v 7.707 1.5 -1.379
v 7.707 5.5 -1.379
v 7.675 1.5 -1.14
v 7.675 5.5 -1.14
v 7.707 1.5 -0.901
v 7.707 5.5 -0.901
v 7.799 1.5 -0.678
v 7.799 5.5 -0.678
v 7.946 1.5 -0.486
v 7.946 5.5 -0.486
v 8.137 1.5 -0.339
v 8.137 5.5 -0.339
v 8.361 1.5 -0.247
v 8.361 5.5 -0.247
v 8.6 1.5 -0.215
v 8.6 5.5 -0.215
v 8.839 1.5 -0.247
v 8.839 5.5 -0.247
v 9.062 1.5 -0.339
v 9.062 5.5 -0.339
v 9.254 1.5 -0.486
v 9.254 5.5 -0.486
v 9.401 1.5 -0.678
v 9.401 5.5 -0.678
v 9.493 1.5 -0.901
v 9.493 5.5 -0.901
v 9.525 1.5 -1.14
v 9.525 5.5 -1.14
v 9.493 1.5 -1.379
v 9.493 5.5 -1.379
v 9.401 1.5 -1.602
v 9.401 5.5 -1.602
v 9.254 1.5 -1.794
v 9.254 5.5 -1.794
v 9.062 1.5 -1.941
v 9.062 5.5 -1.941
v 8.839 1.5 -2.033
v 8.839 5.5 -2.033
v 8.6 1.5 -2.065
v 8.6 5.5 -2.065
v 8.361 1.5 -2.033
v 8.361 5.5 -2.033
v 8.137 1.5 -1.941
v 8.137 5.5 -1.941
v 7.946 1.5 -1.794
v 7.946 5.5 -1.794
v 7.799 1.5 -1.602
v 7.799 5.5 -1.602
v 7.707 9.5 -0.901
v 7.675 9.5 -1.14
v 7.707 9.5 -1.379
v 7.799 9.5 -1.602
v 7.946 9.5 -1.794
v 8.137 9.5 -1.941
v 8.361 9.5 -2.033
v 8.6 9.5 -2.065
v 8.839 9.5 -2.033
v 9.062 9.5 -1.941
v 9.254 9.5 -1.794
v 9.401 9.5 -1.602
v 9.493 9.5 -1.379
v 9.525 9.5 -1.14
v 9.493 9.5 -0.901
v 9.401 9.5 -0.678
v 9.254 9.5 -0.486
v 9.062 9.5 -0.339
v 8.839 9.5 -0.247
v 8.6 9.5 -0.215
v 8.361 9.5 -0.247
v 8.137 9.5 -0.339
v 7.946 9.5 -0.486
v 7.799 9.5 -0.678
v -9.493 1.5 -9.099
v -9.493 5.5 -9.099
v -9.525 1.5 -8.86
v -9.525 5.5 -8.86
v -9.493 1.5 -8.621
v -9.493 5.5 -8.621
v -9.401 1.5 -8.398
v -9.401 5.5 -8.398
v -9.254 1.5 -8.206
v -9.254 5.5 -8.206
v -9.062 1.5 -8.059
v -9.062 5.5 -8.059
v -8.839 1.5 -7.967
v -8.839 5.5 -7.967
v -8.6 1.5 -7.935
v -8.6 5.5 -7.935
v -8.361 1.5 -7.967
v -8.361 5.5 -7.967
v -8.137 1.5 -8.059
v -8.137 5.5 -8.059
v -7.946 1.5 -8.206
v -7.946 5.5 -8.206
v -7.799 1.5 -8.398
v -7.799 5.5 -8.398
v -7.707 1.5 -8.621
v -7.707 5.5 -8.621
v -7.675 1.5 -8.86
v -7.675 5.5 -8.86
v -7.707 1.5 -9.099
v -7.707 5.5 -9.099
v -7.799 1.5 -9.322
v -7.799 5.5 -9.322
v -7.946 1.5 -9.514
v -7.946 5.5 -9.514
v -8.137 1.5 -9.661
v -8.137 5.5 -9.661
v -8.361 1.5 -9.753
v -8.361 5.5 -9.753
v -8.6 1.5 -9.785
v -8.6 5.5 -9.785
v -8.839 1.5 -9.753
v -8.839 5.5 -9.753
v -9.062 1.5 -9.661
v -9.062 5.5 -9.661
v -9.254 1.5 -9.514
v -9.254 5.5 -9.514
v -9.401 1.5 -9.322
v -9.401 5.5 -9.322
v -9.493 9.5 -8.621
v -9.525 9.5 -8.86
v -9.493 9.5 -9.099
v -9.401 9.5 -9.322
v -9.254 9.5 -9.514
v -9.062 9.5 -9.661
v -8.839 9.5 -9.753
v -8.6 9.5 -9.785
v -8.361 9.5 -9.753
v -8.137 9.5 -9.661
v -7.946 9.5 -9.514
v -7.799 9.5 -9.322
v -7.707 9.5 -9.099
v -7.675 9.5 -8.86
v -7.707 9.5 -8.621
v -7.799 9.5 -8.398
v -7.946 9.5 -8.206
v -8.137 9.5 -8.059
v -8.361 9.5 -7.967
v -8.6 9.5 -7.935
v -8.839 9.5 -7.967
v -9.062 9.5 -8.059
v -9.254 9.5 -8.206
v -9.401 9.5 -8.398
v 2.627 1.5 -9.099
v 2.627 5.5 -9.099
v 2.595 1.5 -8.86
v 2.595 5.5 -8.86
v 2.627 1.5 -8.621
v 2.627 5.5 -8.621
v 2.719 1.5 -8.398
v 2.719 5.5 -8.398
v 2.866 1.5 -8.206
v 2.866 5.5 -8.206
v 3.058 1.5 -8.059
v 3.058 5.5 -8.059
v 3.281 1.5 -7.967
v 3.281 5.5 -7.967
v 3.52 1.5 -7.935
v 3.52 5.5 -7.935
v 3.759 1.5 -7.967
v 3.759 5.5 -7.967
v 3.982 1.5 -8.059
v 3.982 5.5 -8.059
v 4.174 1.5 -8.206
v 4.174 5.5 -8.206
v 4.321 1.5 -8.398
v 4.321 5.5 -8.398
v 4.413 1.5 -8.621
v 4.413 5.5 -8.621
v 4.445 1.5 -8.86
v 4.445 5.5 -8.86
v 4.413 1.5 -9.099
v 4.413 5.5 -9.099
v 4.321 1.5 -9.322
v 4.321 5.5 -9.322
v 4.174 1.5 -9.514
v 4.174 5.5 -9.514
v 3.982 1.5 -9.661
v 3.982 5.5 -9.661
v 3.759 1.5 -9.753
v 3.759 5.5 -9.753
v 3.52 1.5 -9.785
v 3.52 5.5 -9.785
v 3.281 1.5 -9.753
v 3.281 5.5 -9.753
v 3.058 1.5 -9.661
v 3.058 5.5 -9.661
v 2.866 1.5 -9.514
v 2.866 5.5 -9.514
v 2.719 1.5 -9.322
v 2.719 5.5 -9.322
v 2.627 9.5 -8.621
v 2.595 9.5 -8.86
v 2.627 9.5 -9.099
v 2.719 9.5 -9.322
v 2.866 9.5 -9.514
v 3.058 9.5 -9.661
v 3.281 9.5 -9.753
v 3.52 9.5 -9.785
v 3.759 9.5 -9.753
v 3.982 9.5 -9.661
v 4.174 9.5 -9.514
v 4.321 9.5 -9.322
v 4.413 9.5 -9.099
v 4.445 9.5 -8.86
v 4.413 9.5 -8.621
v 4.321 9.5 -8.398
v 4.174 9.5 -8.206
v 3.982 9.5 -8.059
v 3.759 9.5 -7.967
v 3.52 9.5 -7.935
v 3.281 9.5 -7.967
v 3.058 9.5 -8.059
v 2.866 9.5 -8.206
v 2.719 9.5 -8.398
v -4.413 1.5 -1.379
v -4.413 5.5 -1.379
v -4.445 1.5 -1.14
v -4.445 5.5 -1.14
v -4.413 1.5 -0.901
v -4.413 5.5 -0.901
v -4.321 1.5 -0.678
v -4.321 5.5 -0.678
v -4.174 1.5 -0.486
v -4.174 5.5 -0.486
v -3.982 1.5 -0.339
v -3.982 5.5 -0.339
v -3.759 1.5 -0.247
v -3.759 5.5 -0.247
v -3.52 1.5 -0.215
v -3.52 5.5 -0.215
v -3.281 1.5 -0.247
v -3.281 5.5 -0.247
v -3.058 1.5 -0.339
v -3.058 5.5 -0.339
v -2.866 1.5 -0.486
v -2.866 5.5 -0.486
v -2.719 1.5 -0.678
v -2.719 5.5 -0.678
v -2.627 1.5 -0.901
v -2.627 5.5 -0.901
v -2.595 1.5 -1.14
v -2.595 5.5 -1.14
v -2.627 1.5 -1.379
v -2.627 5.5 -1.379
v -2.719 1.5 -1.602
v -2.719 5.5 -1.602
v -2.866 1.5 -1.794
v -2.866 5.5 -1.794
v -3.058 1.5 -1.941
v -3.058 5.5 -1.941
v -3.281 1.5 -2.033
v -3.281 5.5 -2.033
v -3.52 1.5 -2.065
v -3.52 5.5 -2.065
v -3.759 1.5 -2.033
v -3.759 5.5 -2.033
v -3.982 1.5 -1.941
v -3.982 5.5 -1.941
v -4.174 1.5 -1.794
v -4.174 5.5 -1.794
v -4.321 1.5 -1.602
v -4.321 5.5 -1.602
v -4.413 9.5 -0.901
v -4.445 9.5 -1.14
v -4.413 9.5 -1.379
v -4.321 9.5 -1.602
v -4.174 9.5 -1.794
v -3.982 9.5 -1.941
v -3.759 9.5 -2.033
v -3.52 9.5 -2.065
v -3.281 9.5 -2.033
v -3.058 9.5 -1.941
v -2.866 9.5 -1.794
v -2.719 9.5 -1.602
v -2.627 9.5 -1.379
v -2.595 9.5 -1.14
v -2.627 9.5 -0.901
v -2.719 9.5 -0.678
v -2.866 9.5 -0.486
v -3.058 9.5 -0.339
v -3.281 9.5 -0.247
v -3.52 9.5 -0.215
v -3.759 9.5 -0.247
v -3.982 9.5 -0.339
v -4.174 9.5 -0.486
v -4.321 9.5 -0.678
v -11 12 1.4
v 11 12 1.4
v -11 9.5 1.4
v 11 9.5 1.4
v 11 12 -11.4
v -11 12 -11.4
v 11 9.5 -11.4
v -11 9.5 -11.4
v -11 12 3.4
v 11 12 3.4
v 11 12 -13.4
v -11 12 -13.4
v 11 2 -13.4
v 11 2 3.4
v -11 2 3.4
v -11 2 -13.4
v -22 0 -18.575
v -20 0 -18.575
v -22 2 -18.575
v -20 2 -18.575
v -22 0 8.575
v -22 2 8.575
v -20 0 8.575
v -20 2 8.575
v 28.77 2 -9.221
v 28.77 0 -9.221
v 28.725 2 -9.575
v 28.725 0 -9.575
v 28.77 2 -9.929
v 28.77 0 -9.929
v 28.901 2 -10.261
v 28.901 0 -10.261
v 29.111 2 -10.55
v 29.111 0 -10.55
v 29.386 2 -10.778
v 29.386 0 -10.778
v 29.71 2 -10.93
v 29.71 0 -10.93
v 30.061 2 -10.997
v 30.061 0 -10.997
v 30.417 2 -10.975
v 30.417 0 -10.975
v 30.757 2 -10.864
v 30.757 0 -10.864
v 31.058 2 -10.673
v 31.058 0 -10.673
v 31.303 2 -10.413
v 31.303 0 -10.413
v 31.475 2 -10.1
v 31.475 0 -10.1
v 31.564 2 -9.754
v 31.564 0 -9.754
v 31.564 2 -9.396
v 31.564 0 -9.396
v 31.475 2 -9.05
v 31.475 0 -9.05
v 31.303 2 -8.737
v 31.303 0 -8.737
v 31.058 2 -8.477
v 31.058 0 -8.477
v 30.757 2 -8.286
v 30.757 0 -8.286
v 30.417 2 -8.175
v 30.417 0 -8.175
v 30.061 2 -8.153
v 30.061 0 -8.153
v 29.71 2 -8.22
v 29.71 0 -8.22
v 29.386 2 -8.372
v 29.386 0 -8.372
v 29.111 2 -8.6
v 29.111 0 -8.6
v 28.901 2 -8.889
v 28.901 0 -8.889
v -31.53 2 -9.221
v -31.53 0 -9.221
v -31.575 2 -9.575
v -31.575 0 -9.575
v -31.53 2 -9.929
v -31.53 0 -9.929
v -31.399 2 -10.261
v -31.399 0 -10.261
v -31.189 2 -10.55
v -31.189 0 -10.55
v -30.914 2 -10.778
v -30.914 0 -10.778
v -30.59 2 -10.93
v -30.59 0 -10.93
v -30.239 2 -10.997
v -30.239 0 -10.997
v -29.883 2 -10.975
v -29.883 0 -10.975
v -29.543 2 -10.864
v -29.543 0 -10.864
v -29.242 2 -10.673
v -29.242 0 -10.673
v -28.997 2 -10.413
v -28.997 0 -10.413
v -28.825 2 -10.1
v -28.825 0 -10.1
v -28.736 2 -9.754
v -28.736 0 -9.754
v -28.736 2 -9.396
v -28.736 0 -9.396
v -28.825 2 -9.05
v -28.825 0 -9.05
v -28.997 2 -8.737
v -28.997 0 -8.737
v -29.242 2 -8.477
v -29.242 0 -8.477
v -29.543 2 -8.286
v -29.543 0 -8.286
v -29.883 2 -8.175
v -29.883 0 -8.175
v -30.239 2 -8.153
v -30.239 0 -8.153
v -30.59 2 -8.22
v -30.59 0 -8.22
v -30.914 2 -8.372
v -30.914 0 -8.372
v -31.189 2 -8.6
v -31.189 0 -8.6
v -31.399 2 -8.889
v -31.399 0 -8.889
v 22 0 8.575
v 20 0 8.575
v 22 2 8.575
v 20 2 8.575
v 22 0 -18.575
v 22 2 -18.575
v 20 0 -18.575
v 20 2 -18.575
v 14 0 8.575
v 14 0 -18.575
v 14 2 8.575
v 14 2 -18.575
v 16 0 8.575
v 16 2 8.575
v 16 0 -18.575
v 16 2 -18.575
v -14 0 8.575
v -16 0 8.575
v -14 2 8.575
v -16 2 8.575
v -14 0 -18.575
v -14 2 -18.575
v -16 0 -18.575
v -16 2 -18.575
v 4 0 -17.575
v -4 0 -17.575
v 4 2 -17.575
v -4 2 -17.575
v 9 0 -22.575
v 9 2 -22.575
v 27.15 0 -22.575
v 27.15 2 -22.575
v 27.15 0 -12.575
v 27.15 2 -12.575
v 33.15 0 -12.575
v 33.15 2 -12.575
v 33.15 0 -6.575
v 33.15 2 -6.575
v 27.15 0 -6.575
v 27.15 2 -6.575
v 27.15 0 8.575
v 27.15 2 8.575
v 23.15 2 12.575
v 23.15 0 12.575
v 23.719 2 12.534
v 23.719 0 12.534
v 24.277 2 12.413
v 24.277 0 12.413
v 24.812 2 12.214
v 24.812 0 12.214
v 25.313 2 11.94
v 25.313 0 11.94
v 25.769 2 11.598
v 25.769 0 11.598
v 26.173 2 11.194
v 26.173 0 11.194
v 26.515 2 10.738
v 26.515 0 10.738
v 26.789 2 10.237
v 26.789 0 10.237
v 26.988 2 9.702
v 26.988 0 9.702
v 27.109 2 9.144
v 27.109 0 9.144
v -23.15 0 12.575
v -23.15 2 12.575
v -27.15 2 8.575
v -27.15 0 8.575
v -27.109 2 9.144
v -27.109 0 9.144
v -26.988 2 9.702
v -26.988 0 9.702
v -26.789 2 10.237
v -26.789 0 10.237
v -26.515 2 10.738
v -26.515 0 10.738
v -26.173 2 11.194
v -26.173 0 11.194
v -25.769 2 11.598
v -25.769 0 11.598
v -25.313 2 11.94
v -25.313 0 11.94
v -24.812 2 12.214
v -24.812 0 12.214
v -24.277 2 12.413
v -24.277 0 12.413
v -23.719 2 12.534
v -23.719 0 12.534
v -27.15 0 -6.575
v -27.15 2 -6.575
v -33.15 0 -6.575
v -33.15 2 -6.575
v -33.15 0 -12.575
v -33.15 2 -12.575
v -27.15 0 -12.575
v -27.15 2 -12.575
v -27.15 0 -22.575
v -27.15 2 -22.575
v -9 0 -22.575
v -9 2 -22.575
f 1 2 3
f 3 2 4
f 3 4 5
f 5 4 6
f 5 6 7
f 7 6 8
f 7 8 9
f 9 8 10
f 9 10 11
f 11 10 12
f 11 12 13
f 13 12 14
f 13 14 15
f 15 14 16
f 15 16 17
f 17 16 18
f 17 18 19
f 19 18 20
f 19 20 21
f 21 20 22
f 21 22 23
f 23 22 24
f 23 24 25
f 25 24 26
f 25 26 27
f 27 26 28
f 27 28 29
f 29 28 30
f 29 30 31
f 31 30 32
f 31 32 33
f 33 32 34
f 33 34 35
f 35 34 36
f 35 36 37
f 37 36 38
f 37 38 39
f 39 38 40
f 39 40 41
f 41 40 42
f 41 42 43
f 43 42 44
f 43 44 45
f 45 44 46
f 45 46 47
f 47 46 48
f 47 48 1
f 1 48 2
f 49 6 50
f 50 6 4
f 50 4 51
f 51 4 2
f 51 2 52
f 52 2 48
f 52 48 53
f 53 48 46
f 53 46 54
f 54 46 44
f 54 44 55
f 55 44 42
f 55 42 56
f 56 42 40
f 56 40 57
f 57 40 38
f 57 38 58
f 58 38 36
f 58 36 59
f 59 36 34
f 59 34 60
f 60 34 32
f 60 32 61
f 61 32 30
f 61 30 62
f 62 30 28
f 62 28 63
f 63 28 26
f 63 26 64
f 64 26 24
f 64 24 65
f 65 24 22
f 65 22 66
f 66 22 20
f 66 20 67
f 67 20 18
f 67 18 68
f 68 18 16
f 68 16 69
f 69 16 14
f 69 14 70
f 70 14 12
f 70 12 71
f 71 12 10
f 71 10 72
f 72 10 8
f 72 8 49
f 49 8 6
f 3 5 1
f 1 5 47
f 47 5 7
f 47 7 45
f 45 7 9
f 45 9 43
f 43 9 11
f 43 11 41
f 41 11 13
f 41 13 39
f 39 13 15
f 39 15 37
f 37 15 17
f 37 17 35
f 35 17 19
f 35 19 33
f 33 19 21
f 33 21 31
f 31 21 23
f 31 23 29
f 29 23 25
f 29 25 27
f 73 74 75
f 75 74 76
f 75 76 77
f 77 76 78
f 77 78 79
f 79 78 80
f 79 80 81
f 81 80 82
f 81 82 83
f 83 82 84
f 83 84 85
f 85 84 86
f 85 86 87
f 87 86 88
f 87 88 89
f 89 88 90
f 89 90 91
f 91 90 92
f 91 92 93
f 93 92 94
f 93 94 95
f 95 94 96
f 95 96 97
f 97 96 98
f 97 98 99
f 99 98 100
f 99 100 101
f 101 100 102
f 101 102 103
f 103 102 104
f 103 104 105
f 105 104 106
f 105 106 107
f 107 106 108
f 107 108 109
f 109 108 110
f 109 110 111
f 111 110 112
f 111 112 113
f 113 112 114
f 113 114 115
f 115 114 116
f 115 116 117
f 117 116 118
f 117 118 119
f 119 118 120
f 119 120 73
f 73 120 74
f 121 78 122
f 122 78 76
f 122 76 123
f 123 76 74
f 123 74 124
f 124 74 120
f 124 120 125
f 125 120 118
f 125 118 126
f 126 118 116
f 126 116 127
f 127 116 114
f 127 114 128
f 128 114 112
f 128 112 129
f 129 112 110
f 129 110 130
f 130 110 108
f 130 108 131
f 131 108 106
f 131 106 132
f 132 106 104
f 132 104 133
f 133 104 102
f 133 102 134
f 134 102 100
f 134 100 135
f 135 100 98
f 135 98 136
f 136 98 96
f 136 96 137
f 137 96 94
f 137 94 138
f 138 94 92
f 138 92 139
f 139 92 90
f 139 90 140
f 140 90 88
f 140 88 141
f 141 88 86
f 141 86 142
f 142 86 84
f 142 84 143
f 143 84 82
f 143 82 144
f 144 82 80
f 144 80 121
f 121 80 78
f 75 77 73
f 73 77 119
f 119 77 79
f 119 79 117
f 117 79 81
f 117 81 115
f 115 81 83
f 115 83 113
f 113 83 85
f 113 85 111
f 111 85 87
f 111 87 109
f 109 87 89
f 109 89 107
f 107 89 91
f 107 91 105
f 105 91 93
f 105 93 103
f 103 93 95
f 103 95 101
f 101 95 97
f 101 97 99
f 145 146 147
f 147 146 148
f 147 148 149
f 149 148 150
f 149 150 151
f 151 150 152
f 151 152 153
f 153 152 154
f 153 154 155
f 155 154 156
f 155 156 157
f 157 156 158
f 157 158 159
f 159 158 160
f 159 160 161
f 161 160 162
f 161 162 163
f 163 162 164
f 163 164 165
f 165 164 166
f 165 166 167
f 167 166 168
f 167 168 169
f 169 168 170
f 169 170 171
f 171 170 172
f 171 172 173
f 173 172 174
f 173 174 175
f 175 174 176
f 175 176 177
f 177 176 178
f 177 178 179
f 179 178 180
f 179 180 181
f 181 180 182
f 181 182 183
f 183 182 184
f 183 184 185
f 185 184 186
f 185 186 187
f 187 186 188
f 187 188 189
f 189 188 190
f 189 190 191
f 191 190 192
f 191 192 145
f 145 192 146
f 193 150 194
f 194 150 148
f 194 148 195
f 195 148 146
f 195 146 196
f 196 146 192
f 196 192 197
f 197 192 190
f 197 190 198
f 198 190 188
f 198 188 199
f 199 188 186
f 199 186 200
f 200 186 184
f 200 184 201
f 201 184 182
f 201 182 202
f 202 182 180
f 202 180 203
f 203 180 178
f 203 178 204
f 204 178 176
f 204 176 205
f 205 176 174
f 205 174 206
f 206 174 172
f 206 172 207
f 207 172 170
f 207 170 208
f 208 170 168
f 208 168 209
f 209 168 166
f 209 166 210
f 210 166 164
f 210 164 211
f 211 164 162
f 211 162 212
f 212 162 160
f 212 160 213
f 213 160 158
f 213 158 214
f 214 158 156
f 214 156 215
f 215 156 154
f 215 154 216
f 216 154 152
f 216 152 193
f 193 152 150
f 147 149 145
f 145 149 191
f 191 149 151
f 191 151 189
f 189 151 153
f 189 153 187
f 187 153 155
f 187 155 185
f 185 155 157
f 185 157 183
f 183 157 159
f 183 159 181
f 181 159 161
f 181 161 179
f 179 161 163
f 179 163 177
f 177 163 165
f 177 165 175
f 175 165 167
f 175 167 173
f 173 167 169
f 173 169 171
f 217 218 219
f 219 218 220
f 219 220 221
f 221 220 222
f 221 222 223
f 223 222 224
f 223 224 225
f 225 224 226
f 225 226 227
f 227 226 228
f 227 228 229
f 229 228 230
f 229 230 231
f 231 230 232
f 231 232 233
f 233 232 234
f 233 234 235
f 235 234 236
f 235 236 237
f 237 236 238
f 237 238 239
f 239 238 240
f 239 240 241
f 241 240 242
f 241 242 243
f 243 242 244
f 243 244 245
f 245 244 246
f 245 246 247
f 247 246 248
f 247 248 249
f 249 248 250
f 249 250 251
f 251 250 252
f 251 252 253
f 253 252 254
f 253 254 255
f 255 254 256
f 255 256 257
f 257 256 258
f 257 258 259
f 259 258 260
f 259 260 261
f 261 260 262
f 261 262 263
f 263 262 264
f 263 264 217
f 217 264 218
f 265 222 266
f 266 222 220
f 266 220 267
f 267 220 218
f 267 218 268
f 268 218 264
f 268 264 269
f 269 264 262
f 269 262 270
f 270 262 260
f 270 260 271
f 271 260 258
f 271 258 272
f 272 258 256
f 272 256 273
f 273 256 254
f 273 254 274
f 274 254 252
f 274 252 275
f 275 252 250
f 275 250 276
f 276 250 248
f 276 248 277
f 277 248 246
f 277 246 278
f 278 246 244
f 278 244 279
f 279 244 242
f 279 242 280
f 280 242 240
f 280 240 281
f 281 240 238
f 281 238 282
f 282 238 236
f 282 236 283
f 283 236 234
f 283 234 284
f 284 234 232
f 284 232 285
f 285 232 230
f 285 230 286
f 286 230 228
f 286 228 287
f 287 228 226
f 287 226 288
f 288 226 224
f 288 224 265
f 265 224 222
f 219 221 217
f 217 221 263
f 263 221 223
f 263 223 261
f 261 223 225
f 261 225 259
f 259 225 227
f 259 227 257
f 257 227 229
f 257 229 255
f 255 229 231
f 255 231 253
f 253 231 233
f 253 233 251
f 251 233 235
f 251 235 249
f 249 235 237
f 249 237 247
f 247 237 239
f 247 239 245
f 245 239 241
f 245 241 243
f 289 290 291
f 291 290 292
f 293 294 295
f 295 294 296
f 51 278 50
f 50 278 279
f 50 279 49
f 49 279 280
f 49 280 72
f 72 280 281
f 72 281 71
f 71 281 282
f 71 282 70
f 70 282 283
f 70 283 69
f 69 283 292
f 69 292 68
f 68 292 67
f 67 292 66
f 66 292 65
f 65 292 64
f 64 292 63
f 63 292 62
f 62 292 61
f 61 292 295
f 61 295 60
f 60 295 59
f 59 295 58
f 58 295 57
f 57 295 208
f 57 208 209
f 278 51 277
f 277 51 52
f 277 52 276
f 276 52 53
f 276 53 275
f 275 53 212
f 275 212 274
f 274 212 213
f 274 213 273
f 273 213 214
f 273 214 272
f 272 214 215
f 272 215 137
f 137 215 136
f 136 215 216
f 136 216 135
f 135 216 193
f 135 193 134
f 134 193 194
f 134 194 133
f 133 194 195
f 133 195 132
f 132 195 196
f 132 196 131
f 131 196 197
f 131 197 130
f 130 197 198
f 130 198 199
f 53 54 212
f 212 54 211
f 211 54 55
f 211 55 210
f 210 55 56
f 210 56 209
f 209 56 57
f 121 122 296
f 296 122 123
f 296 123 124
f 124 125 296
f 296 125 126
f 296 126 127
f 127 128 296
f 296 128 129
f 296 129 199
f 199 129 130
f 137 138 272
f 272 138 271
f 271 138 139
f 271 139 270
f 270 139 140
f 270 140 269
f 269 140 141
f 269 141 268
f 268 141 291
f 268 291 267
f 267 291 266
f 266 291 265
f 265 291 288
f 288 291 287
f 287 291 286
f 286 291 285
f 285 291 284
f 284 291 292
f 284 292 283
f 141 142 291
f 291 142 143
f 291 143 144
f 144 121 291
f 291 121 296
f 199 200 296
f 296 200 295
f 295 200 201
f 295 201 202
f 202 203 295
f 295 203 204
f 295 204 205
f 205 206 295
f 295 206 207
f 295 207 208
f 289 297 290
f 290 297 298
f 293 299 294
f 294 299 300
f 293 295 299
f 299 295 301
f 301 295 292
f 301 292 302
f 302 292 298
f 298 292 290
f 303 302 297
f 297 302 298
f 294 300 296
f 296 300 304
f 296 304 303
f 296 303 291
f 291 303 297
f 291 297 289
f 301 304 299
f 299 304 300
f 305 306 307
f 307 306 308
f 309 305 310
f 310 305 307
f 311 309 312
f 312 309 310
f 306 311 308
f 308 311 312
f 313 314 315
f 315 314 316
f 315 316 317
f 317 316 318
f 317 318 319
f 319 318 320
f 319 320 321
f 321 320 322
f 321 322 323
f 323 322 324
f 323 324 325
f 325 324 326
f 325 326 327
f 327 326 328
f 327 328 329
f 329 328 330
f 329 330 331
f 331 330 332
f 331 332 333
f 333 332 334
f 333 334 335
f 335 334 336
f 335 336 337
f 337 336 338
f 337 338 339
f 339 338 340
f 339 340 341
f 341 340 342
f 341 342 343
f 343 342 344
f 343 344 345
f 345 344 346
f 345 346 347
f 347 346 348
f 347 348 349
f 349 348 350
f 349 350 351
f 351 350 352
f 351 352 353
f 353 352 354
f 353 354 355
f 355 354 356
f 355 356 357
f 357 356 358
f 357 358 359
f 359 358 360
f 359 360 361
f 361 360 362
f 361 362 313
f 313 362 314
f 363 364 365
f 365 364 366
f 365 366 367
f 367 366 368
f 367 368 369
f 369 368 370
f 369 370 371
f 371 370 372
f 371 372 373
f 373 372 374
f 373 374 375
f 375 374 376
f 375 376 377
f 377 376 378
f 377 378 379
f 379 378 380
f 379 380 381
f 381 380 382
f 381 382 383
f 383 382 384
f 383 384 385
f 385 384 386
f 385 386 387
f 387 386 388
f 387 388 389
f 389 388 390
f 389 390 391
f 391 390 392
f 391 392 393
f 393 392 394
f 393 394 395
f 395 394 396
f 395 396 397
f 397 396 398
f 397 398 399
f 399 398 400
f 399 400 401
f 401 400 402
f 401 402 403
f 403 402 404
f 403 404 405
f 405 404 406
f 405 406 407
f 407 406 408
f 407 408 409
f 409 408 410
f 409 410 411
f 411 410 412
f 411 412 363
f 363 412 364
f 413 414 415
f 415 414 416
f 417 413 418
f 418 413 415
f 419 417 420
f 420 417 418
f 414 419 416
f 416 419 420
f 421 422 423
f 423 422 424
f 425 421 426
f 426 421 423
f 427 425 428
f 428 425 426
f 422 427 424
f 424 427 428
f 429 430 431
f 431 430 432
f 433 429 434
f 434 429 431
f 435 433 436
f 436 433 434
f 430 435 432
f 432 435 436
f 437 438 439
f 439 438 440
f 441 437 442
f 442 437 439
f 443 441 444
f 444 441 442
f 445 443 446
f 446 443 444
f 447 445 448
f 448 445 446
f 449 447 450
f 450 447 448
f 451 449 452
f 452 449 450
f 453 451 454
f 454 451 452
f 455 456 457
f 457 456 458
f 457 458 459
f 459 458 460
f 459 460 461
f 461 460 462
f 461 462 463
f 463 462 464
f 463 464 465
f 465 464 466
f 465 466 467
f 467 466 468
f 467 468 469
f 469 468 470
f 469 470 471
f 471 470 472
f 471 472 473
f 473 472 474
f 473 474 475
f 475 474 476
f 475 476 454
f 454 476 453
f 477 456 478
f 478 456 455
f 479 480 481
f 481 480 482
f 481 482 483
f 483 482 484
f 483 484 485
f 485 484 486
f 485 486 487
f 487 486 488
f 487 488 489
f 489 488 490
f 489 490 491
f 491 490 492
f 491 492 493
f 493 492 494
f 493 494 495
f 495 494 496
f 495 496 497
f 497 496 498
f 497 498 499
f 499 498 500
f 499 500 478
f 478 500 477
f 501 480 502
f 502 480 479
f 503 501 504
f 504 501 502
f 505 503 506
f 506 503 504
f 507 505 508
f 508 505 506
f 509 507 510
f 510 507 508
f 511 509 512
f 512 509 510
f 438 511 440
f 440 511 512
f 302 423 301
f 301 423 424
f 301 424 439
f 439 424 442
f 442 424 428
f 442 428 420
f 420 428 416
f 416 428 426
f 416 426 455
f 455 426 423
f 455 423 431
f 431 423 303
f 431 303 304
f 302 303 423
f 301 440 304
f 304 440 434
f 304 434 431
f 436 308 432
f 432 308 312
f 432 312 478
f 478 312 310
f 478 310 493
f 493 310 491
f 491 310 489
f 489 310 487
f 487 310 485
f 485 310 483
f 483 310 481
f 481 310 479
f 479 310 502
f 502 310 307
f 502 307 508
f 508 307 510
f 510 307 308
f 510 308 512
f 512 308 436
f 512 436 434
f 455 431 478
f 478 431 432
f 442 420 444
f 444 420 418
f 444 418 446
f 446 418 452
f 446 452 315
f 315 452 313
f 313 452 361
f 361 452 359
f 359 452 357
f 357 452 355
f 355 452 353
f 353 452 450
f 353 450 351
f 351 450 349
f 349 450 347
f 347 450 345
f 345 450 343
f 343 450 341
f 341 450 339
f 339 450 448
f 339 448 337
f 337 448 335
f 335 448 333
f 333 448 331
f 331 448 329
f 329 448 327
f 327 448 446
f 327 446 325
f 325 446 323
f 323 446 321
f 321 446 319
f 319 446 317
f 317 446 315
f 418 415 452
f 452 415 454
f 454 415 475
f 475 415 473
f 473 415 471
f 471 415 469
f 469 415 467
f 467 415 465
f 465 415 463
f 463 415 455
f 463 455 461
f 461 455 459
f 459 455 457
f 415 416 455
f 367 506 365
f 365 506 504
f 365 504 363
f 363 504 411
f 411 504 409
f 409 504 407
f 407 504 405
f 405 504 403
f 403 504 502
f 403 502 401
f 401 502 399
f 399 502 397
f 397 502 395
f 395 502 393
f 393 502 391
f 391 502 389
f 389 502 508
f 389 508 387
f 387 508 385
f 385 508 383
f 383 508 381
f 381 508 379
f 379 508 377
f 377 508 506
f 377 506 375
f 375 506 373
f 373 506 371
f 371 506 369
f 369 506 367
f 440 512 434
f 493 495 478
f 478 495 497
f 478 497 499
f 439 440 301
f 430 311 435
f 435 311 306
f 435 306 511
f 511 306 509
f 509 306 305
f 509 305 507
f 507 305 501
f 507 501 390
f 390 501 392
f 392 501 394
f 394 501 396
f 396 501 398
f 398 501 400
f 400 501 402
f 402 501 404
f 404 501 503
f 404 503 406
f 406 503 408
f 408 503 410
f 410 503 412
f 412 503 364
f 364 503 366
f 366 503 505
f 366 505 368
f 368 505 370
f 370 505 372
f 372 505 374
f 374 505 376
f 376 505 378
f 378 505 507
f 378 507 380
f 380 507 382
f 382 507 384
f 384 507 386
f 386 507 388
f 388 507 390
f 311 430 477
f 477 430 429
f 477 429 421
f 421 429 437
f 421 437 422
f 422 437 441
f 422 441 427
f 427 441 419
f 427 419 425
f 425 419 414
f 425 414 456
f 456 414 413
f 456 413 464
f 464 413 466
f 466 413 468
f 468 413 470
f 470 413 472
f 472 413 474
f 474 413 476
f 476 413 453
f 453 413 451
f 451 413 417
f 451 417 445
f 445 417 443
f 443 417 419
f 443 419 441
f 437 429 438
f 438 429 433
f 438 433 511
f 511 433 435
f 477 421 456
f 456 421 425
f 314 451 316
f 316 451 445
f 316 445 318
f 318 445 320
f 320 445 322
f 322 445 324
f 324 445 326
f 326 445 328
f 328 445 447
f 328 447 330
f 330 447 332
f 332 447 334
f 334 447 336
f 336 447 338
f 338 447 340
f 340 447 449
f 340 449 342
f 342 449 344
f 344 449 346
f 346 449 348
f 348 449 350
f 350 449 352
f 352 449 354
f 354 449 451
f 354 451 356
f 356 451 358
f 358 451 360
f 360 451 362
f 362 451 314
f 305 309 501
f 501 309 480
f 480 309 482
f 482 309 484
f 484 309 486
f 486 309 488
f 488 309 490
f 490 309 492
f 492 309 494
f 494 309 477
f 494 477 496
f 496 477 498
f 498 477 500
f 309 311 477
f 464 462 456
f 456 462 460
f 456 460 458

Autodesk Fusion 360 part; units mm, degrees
sketch "Sketch1" plane through (0, 0, 0) normal (0, 1, 0) x (1, 0, 0)
  line L0 (0, 12.575) -> (27.15, 12.575) construction
  line L1 (27.15, 12.575) -> (27.15, -8.575)
  line L2 (23.15, -12.575) -> (0, -12.575)
  line L3 (27.15, 12.575) -> (33.15, 12.575)
  line L4 (33.15, 12.575) -> (33.15, 6.575)
  line L5 (33.15, 6.575) -> (27.15, 6.575)
  line L6 (27.15, 6.575) -> (27.15, 12.575)
  line L7 (0, -12.575) -> (0, 12.575) construction
  circle A0 centre (30.15, 9.575) radius 1.425
  line L8 (27.15, 6.575) -> (33.15, 12.575) construction
  arc A1 (23.15, -12.575) -> (27.15, -8.575) centre (23.15, -8.575) ccw
  line L9 (-27.15, 12.575) -> (-27.15, -8.575)
  line L10 (-33.15, 6.575) -> (-27.15, 6.575)
  circle A2 centre (-30.15, 9.575) radius 1.425
  line L11 (-27.15, 12.575) -> (-33.15, 12.575)
  line L12 (-33.15, 12.575) -> (-33.15, 6.575)
  line L13 (-23.15, -12.575) -> (0, -12.575)
  arc A3 (-27.15, -8.575) -> (-23.15, -12.575) centre (-23.15, -8.575) ccw
  line L14 (-27.15, 0) -> (27.15, 0) construction
  line L15 (-27.15, 12.575) -> (-27.15, 22.575)
  line L16 (-27.15, 22.575) -> (27.15, 22.575)
  line L17 (27.15, 22.575) -> (27.15, 12.575)
  line L18 (22, 18.575) -> (20, 18.575)
  line L19 (22, -8.575) -> (22, 18.575)
  line L20 (20, -8.575) -> (22, -8.575)
  line L21 (20, 18.575) -> (20, -8.575)
  line L22 (16, -8.575) -> (16, 18.575)
  line L23 (14, 18.575) -> (14, -8.575)
  line L24 (14, -8.575) -> (16, -8.575)
  line L25 (16, 18.575) -> (14, 18.575)
  line L26 (-4, 17.575) -> (4, 17.575)
  line L27 (-4, 17.575) -> (-9, 22.575)
  line L28 (4, 17.575) -> (9, 22.575)
  line L29 (11, 13.4) -> (11, -3.4)
  line L30 (-11, -3.4) -> (-11, 13.4)
  line L31 (-11, 11.4) -> (11, 11.4)
  line L32 (-11, -1.4) -> (11, -1.4)
  line L33 (-11, 13.4) -> (11, 13.4)
  line L34 (-11, -3.4) -> (11, -3.4)
  line L35 (-11, 5) -> (11, 5) construction
  line L36 (-14, -8.575) -> (-16, -8.575)
  line L37 (-14, 18.575) -> (-14, -8.575)
  line L38 (-16, -8.575) -> (-16, 18.575)
  line L39 (-16, 18.575) -> (-14, 18.575)
  line L40 (-22, 18.575) -> (-20, 18.575)
  line L41 (-20, 18.575) -> (-20, -8.575)
  line L42 (-22, -8.575) -> (-22, 18.575)
  line L43 (-20, -8.575) -> (-22, -8.575)
  circle A4 centre (3.52, 8.86) radius 0.925
  circle A5 centre (8.6, 1.14) radius 0.925
  circle A6 centre (-8.6, 8.86) radius 0.925
  circle A7 centre (-3.52, 1.14) radius 0.925
  point P0 (0, 17.575)
  point P1 (0, 5)
  dimension "d1" = 6
  dimension "d2" = 6
  dimension "d4" = 33.15
  dimension "d5" = 2.85
  dimension "d6" = 4
  dimension "d16" = 10
  dimension "d18" = 25.15
  dimension "d25" = 5
  dimension "d26" = 45
  dimension "d27" = 45
  dimension "d28" = 8
  dimension "d29" = 22
  dimension "d32" = 12.8
  dimension "d33" = 2
  dimension "d34" = 2
  dimension "d36" = 5
  dimension "d37" = 2
  dimension "d38" = 27.15
  dimension "d39" = 14
  dimension "d40" = 4
  dimension "d41" = 4
  dimension "d56" = 2.4
  dimension "d57" = 2.54
  dimension "d58" = 2.54
  dimension "d59" = 7.48
  dimension "d60" = 1.85
  dimension "d61" = 2.4
  dimension "d62" = 2.54
  dimension "d63" = 7.48
  dimension "d64" = 2.54
extrude "Extrude1" add sketch "Sketch1" along normal blind 2 contours L1 L3 L4 L5 L6 | L1 L2 L6 A1 L9 L13 A3 L15 L16 L17 L26 L27 L28 | L9 L10 L11 L12 | L29 L30 L31 L33 | L29 L30 L31 L32 | L29 L30 L32 L34 | A4 | A5 | A6 | A7
extrude "Extrude2" add sketch "Sketch1" along normal blind 10 from surface at 2 contours L29 L30 L31 L33 | L29 L30 L31 L32 | L29 L30 L32 L34 | A4 | A5 | A6 | A7
extrude "Extrude3" cut sketch "Sketch1" against normal blind 2.5 from surface at 12 contours L29 L30 L31 L32 | A4 | A5 | A6 | A7
extrude "Extrude4" cut sketch "Sketch1" against normal blind 8 from surface at 9.5 contours A4 | A5 | A6 | A7
